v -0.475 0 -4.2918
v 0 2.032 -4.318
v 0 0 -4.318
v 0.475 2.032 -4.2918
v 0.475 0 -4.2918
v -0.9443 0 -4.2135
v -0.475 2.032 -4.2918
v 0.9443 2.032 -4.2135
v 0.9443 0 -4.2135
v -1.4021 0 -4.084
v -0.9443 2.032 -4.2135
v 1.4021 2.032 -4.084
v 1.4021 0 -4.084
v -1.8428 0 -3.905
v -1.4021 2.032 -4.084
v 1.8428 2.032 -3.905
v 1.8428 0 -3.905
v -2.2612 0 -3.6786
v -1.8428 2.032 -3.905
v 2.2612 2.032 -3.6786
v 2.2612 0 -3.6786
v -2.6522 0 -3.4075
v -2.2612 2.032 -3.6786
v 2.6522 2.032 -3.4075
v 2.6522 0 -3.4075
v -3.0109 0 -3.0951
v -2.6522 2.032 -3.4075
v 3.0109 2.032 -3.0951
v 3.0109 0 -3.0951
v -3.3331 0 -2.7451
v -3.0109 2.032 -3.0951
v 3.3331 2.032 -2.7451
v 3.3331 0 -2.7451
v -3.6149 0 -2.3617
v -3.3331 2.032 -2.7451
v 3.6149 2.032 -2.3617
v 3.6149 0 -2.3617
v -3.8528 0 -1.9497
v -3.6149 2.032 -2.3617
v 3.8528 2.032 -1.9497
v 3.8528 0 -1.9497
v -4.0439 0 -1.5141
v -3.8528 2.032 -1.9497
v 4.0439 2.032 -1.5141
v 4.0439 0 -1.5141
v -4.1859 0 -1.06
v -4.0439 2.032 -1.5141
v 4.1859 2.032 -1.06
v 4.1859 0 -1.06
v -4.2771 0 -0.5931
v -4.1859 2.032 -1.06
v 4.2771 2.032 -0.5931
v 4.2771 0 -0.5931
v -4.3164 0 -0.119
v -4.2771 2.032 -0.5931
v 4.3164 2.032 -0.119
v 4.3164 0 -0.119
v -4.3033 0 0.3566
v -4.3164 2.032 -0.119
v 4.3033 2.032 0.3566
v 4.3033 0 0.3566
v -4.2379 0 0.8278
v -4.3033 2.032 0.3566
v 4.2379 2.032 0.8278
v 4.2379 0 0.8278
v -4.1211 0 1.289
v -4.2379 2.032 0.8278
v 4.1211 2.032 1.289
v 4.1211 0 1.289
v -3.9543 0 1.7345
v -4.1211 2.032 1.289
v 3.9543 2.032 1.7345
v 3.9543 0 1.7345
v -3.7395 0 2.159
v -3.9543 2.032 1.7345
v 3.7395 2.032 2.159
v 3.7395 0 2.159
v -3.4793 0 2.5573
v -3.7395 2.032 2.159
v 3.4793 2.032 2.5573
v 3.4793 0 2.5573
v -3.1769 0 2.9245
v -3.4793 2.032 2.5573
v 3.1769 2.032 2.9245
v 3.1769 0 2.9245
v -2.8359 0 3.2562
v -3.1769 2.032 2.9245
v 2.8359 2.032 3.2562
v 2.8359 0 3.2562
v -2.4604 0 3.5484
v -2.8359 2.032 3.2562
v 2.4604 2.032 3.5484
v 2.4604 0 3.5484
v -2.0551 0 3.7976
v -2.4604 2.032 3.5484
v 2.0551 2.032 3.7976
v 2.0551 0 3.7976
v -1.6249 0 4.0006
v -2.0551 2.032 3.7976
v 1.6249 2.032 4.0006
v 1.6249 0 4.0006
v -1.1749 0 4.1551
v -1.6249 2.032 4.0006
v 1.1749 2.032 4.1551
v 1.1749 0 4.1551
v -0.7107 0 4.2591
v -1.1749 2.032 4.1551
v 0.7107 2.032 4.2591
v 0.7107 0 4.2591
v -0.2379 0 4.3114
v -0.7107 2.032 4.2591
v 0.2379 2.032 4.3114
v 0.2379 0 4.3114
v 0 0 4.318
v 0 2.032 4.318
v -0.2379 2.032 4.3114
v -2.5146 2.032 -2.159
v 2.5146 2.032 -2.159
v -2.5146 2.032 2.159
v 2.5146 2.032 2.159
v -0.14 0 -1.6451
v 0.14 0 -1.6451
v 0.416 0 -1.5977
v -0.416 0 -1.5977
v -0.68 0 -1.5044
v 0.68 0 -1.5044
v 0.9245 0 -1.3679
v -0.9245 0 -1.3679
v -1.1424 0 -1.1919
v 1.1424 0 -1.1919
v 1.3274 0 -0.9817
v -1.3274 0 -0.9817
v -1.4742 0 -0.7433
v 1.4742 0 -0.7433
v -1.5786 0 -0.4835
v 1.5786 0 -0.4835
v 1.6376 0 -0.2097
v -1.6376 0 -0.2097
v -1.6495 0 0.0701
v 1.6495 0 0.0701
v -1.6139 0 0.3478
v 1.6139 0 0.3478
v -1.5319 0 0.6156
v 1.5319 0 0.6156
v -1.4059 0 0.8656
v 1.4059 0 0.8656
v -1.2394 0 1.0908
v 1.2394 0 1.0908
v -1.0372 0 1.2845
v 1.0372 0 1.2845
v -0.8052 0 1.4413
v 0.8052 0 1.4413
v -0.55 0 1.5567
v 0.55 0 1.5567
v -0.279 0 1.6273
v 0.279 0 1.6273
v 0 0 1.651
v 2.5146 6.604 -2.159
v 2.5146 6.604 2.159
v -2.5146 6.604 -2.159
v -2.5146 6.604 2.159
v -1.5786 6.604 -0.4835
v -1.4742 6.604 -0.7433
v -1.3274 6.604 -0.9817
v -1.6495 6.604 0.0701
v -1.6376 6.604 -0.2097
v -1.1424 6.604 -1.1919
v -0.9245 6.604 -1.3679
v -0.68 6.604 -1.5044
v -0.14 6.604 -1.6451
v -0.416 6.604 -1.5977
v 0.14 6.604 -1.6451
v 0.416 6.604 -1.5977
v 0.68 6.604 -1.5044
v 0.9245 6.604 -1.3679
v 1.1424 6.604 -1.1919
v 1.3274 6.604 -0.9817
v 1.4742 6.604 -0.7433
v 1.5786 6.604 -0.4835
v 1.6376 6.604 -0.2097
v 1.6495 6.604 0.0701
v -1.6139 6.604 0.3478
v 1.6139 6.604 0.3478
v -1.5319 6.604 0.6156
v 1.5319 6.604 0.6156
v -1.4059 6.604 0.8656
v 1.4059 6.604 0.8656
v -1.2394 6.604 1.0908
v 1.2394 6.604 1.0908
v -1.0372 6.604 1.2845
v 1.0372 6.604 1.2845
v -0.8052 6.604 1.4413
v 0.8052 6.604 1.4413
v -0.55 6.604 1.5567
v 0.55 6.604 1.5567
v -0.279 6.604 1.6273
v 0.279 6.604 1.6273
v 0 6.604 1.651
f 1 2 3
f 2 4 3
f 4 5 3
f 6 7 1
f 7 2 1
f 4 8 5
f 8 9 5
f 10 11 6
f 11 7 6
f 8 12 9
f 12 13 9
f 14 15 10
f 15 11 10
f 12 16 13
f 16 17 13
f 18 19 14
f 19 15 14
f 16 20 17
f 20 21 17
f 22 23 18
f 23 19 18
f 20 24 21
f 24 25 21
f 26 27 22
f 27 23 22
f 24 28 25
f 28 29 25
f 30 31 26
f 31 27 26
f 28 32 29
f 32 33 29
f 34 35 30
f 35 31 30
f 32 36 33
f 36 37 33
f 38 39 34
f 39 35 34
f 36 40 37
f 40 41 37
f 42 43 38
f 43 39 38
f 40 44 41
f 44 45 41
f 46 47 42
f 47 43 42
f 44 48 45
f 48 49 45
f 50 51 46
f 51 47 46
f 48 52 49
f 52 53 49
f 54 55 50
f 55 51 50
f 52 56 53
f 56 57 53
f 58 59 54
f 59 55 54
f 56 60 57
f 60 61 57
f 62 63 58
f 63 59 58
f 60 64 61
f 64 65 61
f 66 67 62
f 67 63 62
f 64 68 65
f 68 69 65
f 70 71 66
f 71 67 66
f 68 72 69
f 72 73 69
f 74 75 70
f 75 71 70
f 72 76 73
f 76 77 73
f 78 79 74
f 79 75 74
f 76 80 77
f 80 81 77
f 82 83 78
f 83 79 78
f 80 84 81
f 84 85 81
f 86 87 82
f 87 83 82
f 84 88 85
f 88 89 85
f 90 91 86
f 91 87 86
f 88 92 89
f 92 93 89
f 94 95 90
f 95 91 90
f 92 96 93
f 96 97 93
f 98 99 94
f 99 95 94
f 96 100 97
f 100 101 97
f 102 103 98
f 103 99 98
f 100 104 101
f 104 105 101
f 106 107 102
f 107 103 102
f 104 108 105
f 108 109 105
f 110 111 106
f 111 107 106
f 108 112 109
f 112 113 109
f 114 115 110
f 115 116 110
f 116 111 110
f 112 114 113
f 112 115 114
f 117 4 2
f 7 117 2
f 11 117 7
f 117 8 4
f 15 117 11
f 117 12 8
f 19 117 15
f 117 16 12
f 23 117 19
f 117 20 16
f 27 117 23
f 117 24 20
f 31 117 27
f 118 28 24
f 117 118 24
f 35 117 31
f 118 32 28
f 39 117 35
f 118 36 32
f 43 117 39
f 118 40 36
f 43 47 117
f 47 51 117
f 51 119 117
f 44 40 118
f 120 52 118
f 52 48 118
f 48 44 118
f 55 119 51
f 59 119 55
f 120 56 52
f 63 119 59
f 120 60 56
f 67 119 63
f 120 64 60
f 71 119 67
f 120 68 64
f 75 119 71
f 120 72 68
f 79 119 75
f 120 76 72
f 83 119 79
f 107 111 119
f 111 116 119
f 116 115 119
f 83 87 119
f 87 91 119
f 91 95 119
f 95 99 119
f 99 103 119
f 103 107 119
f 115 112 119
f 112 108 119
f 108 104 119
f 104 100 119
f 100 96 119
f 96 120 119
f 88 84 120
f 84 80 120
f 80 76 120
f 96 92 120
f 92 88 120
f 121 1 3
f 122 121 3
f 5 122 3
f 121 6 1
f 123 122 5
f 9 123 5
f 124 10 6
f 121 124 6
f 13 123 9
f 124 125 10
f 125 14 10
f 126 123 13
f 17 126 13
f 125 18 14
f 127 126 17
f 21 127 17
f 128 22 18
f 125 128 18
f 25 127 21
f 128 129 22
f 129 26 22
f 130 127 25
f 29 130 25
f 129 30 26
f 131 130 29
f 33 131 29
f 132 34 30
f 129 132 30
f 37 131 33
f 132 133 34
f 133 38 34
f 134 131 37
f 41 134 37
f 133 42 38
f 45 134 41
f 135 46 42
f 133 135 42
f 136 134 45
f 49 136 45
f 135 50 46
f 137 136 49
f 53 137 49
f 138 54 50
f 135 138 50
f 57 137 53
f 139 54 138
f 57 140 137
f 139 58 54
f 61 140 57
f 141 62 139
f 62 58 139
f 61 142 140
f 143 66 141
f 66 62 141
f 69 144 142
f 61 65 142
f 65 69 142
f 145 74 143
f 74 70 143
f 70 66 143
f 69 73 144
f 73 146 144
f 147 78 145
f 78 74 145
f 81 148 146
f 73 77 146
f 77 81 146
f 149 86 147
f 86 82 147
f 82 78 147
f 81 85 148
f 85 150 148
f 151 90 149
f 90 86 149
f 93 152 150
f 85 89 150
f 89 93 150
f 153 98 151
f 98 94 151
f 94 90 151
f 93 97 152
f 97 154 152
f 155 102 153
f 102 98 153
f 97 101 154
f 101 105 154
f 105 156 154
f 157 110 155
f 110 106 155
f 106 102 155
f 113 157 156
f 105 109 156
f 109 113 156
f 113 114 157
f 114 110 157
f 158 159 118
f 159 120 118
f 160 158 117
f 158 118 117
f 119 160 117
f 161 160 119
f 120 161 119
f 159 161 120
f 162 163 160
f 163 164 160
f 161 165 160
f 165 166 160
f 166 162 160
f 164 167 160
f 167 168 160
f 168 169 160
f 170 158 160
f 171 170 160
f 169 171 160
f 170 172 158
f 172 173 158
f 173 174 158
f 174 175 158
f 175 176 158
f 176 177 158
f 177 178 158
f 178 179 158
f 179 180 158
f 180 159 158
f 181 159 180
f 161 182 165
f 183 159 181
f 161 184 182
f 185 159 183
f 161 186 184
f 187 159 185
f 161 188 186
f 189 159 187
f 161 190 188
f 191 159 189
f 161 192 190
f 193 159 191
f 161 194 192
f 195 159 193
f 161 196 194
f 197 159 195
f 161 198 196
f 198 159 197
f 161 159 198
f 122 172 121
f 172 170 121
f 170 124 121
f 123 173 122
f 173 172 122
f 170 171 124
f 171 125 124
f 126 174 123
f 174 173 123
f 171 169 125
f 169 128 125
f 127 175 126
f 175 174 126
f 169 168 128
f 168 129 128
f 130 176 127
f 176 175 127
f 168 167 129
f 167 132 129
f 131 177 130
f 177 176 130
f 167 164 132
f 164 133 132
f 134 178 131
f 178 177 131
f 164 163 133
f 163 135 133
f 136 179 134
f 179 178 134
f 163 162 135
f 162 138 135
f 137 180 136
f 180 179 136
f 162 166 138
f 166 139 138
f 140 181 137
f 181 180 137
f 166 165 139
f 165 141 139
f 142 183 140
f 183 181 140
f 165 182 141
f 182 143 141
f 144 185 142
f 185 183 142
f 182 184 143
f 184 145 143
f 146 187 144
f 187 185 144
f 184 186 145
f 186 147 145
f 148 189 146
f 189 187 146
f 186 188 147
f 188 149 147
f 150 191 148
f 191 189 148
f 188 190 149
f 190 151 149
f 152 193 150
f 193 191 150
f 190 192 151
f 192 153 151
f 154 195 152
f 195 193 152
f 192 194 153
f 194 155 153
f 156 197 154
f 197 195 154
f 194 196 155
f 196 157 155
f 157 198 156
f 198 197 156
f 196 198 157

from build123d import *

# Parameters (mm, degrees)
SKETCH1_R           = 4.318
BOSS_EXTRUDE1_DEPTH = 2.032
SKETCH2_W           = 5.0292
SKETCH2_H           = 4.318
BOSS_EXTRUDE2_DEPTH = 4.572
SKETCH3_R           = 1.651
CUT_EXTRUDE1_DEPTH  = 7.604


with BuildPart() as part:
    # Sketch1 → Boss-Extrude1 (new body)
    with BuildSketch(Plane(origin=(0, 0, 0), x_dir=(1, 0, 0), z_dir=(0, 1, 0))):
        Circle(SKETCH1_R)
    extrude(amount=BOSS_EXTRUDE1_DEPTH)

    # Sketch2 → Boss-Extrude2 (add)
    with BuildSketch(Plane(origin=(0, 2.032, 0), x_dir=(1, 0, 0), z_dir=(0, 1, 0))):
        Rectangle(SKETCH2_W, SKETCH2_H)
    extrude(amount=BOSS_EXTRUDE2_DEPTH)

    # Sketch3 → Cut-Extrude1 (cut, through all)
    with BuildSketch(Plane(origin=(0, 6.604, 0), x_dir=(1, 0, 0), z_dir=(0, 1, 0))):
        Circle(SKETCH3_R)
    extrude(amount=-CUT_EXTRUDE1_DEPTH, mode=Mode.SUBTRACT)


solid = part.part
